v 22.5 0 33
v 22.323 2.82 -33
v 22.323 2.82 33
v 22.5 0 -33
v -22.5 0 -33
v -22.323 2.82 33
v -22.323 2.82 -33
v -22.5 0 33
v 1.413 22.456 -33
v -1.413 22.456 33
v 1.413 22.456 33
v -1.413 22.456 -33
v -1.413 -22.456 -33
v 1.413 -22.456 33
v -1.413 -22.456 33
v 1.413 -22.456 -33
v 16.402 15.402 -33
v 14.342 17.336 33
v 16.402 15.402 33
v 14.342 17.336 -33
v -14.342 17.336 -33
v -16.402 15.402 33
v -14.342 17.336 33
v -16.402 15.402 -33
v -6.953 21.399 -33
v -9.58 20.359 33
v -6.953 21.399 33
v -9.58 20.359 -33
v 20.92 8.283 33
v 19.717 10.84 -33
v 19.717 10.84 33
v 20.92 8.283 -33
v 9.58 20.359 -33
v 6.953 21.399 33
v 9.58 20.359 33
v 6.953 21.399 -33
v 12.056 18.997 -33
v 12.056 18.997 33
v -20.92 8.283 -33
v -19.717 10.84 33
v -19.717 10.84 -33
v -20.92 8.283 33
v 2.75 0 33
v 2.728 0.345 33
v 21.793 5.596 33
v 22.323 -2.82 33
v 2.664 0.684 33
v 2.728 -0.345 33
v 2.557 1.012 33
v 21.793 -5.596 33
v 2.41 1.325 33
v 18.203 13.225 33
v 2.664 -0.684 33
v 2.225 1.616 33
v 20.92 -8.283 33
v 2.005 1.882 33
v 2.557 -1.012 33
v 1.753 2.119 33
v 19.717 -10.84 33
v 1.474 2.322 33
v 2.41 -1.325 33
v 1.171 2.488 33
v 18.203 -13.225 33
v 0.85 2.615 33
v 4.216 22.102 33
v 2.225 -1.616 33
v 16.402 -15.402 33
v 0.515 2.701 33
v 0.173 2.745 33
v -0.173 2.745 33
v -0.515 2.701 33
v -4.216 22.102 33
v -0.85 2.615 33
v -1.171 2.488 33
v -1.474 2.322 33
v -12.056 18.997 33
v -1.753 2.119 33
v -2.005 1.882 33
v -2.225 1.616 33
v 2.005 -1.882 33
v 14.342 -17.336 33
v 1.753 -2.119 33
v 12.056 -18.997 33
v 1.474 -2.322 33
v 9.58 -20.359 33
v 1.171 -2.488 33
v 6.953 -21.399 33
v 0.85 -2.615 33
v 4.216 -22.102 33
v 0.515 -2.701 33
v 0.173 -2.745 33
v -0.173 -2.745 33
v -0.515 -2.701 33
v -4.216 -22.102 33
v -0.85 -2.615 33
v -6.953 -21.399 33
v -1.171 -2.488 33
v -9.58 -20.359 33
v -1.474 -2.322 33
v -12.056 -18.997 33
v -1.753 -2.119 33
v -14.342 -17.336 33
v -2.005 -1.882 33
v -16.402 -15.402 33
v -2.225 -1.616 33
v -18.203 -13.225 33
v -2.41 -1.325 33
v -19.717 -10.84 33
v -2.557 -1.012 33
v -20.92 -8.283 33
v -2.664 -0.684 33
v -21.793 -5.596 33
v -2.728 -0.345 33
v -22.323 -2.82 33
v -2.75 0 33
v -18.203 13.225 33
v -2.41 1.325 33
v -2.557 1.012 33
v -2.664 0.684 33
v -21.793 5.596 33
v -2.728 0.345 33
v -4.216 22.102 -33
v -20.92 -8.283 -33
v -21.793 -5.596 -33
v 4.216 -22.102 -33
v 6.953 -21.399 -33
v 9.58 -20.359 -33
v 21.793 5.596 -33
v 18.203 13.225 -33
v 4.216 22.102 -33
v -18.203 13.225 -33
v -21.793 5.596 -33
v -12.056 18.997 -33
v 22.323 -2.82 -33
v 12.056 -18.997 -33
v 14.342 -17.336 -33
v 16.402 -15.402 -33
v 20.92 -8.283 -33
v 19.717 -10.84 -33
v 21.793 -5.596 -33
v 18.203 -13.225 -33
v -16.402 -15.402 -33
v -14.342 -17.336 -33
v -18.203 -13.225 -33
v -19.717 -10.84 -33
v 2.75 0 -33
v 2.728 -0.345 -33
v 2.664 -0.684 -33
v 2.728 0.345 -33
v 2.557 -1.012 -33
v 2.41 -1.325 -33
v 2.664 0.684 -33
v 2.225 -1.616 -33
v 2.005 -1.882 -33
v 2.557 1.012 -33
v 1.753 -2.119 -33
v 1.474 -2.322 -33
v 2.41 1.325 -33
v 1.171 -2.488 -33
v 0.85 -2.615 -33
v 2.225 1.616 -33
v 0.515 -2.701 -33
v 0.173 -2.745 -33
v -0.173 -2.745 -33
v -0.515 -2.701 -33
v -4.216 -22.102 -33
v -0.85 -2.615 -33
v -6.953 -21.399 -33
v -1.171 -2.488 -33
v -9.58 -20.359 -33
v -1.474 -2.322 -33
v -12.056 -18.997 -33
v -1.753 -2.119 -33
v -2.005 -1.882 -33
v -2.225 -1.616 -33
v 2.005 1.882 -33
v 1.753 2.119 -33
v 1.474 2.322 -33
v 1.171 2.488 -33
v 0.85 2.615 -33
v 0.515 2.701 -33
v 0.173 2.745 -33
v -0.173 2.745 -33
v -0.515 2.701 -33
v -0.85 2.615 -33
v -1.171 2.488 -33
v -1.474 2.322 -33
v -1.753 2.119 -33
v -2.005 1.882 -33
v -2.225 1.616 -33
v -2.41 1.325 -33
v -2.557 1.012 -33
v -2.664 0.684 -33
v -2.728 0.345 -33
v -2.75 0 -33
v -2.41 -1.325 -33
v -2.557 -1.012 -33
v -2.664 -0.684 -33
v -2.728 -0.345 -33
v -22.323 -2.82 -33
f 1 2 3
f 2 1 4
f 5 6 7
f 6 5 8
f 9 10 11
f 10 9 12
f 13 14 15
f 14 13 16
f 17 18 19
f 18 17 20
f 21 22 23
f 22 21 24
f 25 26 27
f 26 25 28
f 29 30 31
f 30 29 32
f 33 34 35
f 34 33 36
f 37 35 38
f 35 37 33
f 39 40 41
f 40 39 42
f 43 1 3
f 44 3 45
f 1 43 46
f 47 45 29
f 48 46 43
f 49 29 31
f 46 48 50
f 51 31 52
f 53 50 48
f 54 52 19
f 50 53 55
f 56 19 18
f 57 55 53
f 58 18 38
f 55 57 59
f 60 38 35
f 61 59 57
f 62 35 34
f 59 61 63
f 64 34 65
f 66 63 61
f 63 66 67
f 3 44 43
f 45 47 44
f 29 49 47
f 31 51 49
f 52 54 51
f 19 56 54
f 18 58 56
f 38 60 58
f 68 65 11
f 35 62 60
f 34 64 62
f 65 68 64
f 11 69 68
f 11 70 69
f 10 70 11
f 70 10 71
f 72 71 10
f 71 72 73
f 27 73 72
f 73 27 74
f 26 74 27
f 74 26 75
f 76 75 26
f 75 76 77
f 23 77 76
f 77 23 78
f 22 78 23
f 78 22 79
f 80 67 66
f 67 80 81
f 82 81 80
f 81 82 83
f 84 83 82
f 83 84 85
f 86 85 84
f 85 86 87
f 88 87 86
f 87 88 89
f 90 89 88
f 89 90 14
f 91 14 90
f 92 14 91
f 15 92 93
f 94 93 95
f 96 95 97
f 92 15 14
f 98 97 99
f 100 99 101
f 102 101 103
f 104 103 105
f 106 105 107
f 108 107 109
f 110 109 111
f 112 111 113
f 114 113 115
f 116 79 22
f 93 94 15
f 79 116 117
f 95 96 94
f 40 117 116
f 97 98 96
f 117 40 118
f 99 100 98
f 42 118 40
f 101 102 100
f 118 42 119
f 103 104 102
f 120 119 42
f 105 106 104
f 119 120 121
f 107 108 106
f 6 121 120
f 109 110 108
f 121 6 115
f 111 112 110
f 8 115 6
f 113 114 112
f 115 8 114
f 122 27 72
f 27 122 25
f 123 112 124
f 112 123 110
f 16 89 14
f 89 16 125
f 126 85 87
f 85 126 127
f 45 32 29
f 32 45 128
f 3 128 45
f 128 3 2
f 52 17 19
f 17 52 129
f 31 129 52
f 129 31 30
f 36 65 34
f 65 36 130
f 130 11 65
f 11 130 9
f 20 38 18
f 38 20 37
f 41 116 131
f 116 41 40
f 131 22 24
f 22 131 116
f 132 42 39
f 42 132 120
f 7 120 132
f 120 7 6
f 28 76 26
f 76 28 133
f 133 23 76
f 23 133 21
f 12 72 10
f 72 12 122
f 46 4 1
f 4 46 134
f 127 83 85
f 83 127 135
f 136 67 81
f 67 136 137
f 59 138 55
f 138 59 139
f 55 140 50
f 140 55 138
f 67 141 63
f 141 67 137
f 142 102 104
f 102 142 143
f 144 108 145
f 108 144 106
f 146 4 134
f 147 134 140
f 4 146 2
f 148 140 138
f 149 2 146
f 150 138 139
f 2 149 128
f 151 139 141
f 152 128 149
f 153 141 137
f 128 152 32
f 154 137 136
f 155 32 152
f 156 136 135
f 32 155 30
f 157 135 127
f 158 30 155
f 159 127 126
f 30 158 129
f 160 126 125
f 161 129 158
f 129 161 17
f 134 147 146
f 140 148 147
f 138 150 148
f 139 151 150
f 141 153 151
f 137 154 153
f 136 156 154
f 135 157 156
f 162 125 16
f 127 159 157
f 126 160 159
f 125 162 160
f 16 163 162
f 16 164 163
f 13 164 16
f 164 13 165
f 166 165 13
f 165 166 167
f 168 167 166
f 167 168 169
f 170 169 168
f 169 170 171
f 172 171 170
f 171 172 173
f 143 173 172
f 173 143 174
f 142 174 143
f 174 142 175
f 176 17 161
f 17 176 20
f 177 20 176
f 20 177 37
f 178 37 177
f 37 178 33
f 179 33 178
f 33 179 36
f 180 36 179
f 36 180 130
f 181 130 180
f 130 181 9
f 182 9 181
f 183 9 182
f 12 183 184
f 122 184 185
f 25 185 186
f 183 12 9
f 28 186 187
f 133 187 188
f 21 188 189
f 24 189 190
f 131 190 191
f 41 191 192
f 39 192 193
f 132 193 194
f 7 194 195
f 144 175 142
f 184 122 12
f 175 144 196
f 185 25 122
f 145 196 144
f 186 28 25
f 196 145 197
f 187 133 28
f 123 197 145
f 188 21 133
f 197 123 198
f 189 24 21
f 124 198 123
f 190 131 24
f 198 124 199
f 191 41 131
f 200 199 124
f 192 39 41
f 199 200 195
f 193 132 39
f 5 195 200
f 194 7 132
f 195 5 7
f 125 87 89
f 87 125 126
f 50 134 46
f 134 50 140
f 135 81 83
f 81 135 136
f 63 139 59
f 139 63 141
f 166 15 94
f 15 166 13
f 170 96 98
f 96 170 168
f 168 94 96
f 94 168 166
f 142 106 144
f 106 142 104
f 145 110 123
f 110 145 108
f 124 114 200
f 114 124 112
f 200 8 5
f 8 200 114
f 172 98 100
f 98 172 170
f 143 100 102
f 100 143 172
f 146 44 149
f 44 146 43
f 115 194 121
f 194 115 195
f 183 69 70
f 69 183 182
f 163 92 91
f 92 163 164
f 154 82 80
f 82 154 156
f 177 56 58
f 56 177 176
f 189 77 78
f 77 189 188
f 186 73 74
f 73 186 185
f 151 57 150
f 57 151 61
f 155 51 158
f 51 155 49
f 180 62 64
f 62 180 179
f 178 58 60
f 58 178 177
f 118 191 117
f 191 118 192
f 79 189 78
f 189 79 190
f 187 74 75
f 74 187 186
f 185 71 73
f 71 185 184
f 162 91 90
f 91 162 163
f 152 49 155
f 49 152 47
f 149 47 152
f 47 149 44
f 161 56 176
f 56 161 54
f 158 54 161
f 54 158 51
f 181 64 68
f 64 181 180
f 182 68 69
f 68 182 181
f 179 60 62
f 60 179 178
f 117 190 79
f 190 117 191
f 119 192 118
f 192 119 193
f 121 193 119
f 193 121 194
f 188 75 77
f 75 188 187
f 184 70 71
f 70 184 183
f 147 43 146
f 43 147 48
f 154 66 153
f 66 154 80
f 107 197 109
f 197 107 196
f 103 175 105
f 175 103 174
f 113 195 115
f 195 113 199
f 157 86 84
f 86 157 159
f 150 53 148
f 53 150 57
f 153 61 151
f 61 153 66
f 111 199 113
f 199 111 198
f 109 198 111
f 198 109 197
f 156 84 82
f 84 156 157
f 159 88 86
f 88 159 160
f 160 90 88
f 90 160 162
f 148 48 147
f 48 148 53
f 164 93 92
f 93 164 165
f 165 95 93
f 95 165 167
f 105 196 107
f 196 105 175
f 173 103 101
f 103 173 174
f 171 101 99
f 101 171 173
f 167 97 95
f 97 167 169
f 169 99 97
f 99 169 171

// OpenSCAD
$fn = 50;


difference() {
	union() {
		translate(v = [0, 0, -33.0000000000]) {
			cylinder(h = 66, r = 22.5000000000);
		}
	}
	union() {
		translate(v = [0, 0, -100.0000000000]) {
			cylinder(h = 200, r = 2.7500000000);
		}
	}
}
